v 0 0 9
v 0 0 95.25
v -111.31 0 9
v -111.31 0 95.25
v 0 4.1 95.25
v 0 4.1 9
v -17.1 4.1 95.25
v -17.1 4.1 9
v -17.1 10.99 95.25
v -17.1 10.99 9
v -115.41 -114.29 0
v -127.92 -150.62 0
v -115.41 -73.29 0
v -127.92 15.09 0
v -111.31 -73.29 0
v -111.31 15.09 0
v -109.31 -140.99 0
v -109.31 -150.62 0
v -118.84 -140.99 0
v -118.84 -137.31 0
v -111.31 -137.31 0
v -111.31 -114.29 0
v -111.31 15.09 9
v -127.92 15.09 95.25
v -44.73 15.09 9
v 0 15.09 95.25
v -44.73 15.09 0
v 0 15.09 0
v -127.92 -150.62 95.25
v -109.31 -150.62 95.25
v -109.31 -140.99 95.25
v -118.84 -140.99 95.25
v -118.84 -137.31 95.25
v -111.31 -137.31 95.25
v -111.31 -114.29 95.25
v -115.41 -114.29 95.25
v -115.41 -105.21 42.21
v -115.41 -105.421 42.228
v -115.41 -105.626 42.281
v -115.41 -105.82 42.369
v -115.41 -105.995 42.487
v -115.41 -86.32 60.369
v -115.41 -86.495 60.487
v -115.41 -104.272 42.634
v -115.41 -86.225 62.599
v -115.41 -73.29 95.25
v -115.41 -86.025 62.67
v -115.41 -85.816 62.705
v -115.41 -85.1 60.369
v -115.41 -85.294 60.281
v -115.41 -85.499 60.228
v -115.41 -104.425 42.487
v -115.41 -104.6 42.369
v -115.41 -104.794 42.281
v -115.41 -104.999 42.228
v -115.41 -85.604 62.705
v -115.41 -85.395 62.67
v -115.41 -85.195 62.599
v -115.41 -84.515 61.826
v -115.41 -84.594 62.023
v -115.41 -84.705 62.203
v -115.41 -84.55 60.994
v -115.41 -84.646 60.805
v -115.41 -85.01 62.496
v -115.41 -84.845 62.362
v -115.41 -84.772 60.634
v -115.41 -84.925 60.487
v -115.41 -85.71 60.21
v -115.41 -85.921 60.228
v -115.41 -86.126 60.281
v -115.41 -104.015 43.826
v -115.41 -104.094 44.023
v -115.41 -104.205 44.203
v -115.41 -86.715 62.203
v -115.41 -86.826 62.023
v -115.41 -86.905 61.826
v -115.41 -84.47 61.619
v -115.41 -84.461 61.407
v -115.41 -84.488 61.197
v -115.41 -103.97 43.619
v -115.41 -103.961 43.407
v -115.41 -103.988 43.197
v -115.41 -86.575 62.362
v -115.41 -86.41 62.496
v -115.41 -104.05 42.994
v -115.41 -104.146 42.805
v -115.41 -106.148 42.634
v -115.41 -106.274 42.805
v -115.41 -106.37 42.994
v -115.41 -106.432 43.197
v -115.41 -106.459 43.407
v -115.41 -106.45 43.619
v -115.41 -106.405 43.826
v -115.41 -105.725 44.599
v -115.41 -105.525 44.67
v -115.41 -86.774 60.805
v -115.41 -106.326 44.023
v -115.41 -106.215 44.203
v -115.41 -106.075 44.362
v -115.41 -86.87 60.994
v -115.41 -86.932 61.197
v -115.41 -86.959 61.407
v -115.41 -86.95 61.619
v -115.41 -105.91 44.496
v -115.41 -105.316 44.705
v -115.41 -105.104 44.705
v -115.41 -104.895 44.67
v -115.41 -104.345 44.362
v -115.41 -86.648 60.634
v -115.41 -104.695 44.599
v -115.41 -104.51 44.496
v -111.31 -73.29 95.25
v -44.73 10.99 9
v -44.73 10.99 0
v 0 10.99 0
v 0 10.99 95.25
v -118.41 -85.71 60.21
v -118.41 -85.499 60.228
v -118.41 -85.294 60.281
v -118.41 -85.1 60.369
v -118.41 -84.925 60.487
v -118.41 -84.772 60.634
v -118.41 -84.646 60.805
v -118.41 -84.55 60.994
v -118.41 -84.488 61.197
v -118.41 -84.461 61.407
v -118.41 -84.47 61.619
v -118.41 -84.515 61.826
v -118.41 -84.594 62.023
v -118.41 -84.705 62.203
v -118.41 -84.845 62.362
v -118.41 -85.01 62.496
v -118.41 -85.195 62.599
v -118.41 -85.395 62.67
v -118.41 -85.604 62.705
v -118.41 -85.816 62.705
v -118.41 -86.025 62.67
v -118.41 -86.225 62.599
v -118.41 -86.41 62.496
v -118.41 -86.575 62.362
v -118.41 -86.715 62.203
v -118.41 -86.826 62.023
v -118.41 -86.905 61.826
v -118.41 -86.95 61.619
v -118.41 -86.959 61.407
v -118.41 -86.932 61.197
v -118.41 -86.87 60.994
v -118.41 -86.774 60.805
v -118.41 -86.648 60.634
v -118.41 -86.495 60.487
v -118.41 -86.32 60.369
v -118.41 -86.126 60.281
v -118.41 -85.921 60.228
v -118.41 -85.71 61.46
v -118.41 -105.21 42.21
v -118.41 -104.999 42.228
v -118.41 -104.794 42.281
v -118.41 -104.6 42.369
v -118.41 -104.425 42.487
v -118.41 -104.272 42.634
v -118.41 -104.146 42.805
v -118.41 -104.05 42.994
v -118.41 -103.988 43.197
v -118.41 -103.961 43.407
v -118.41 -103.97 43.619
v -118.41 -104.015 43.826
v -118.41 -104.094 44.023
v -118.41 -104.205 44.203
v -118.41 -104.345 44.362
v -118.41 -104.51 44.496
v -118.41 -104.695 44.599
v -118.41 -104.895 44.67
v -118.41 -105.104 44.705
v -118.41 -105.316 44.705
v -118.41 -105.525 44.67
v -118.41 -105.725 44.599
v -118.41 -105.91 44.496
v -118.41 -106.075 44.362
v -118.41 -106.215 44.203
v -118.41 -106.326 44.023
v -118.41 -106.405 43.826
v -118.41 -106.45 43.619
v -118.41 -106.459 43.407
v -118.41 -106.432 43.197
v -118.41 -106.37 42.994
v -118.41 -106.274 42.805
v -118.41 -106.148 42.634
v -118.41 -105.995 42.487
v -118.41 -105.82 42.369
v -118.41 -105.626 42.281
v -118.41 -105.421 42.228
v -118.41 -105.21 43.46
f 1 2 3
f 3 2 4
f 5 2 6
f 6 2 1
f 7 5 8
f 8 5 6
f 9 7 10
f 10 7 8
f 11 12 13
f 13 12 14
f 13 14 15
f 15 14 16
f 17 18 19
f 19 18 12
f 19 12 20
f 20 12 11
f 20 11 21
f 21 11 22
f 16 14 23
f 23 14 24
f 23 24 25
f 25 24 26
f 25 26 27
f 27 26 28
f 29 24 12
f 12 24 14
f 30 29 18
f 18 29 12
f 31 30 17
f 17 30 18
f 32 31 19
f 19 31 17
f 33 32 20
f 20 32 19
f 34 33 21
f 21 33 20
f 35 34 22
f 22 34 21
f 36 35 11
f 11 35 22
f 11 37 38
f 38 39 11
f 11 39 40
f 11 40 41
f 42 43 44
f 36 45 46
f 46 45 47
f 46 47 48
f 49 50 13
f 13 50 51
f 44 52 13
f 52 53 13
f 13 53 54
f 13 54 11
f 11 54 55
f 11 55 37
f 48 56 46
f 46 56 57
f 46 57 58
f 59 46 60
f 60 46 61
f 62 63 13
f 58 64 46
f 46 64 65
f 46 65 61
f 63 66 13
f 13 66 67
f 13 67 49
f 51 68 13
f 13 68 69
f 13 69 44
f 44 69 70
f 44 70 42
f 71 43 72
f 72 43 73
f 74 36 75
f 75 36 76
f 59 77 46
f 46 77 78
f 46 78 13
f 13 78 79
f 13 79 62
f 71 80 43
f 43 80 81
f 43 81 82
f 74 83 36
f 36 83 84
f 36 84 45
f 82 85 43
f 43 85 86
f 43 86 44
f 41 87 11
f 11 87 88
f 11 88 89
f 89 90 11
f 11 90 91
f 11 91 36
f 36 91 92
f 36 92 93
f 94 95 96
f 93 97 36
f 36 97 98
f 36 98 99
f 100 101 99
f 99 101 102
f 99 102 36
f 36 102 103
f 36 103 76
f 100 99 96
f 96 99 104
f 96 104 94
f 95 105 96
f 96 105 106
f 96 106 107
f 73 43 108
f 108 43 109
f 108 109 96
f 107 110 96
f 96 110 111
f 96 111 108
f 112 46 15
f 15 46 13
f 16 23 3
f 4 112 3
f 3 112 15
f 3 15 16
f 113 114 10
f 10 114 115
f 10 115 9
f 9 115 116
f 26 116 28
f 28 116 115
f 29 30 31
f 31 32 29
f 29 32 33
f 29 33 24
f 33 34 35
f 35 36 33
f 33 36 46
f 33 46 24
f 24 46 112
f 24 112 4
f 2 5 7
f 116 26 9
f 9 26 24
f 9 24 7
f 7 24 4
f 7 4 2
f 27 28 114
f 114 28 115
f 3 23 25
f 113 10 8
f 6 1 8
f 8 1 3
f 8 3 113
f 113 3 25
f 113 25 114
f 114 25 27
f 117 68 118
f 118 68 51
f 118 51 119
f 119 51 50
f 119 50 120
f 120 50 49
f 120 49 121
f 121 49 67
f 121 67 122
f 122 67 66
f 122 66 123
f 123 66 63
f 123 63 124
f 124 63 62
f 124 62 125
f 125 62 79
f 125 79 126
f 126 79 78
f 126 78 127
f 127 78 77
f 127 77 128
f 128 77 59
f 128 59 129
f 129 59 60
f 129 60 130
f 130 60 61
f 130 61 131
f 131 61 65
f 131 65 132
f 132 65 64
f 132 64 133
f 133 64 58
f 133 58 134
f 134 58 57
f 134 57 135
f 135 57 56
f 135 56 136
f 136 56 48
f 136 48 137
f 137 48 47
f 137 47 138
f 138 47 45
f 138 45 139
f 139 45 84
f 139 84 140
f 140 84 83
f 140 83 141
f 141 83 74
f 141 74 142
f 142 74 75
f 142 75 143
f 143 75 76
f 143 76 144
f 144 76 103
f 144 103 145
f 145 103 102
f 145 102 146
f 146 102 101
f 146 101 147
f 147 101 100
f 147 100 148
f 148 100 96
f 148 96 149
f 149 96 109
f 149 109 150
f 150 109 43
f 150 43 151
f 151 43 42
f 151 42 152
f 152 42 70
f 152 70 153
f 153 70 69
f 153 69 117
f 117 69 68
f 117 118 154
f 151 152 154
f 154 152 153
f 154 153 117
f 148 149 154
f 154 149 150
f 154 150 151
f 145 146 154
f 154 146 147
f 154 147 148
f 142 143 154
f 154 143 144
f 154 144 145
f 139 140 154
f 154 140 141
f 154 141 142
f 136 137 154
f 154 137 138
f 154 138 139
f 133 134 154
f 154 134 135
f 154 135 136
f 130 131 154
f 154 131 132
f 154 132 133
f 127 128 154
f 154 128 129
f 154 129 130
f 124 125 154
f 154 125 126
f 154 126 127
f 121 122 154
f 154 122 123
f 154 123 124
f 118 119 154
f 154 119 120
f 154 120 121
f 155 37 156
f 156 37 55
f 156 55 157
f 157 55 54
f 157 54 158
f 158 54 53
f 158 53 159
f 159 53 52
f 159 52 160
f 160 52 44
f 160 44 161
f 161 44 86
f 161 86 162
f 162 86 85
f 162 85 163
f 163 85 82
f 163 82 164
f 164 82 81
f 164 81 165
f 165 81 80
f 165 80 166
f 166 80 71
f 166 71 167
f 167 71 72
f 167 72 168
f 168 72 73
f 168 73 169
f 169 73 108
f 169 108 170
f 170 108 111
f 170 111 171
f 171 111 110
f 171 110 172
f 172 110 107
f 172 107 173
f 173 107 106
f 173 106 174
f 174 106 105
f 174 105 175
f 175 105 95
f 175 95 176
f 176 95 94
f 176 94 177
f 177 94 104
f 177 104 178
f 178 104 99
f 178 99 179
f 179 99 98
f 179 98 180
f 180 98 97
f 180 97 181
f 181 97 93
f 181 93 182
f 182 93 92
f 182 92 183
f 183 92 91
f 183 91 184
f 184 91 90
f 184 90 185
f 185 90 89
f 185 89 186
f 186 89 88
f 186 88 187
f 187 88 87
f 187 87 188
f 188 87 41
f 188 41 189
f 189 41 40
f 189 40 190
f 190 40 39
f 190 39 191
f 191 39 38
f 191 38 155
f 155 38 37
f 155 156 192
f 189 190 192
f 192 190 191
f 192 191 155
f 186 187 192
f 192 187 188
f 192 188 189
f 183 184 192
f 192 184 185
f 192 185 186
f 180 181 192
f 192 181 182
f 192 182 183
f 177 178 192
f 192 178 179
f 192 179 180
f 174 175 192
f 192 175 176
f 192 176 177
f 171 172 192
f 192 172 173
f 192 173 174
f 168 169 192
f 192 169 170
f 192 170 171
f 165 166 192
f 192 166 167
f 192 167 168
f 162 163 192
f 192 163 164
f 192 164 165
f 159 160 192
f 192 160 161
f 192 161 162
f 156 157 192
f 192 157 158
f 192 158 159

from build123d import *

# Parameters (mm, degrees)
BOSS_EXTRUDE1_DEPTH = 95.25
CUT_EXTRUDE1_DEPTH  = 9
SKETCH5_R           = 1.25
CUT_EXTRUDE2_DEPTH  = 3


with BuildPart() as part:
    # Sketch1 → Boss-Extrude1 (new body)
    with BuildSketch(Plane.XY):
        Polygon((0, 0), (-111.31, 0), (-111.31, -73.29), (-115.41, -73.29), (-115.41, -114.29), (-111.31, -114.29), (-111.31, -137.31), (-118.84, -137.31), (-118.84, -140.99), (-109.31, -140.99), (-109.31, -150.62), (-127.92, -150.62), (-127.92, 15.09), (0, 15.09), (0, 10.99), (-17.1, 10.99), (-17.1, 4.1), (0, 4.1), align=None)
    extrude(amount=BOSS_EXTRUDE1_DEPTH)

    # Sketch4 → Cut-Extrude1 (cut)
    with BuildSketch(Plane(origin=(0, 0, 0), x_dir=(-1, 0, 0), z_dir=(0, 0, -1))):
        Polygon((111.31, 0), (0, 0), (0, 10.99), (44.73, 10.99), (44.73, 15.09), (111.31, 15.09), align=None)
    extrude(amount=-CUT_EXTRUDE1_DEPTH, mode=Mode.SUBTRACT)

    # Sketch5 → Cut-Extrude2 (cut)
    with BuildSketch(Plane(origin=(-115.41, 0, 0), x_dir=(0, 0, -1), z_dir=(1, 0, 0))):
        with Locations((-43.46, -105.21)):
            Circle(SKETCH5_R)
        with Locations((-61.46, -85.71)):
            Circle(SKETCH5_R)
    extrude(amount=-CUT_EXTRUDE2_DEPTH, mode=Mode.SUBTRACT)


solid = part.part
